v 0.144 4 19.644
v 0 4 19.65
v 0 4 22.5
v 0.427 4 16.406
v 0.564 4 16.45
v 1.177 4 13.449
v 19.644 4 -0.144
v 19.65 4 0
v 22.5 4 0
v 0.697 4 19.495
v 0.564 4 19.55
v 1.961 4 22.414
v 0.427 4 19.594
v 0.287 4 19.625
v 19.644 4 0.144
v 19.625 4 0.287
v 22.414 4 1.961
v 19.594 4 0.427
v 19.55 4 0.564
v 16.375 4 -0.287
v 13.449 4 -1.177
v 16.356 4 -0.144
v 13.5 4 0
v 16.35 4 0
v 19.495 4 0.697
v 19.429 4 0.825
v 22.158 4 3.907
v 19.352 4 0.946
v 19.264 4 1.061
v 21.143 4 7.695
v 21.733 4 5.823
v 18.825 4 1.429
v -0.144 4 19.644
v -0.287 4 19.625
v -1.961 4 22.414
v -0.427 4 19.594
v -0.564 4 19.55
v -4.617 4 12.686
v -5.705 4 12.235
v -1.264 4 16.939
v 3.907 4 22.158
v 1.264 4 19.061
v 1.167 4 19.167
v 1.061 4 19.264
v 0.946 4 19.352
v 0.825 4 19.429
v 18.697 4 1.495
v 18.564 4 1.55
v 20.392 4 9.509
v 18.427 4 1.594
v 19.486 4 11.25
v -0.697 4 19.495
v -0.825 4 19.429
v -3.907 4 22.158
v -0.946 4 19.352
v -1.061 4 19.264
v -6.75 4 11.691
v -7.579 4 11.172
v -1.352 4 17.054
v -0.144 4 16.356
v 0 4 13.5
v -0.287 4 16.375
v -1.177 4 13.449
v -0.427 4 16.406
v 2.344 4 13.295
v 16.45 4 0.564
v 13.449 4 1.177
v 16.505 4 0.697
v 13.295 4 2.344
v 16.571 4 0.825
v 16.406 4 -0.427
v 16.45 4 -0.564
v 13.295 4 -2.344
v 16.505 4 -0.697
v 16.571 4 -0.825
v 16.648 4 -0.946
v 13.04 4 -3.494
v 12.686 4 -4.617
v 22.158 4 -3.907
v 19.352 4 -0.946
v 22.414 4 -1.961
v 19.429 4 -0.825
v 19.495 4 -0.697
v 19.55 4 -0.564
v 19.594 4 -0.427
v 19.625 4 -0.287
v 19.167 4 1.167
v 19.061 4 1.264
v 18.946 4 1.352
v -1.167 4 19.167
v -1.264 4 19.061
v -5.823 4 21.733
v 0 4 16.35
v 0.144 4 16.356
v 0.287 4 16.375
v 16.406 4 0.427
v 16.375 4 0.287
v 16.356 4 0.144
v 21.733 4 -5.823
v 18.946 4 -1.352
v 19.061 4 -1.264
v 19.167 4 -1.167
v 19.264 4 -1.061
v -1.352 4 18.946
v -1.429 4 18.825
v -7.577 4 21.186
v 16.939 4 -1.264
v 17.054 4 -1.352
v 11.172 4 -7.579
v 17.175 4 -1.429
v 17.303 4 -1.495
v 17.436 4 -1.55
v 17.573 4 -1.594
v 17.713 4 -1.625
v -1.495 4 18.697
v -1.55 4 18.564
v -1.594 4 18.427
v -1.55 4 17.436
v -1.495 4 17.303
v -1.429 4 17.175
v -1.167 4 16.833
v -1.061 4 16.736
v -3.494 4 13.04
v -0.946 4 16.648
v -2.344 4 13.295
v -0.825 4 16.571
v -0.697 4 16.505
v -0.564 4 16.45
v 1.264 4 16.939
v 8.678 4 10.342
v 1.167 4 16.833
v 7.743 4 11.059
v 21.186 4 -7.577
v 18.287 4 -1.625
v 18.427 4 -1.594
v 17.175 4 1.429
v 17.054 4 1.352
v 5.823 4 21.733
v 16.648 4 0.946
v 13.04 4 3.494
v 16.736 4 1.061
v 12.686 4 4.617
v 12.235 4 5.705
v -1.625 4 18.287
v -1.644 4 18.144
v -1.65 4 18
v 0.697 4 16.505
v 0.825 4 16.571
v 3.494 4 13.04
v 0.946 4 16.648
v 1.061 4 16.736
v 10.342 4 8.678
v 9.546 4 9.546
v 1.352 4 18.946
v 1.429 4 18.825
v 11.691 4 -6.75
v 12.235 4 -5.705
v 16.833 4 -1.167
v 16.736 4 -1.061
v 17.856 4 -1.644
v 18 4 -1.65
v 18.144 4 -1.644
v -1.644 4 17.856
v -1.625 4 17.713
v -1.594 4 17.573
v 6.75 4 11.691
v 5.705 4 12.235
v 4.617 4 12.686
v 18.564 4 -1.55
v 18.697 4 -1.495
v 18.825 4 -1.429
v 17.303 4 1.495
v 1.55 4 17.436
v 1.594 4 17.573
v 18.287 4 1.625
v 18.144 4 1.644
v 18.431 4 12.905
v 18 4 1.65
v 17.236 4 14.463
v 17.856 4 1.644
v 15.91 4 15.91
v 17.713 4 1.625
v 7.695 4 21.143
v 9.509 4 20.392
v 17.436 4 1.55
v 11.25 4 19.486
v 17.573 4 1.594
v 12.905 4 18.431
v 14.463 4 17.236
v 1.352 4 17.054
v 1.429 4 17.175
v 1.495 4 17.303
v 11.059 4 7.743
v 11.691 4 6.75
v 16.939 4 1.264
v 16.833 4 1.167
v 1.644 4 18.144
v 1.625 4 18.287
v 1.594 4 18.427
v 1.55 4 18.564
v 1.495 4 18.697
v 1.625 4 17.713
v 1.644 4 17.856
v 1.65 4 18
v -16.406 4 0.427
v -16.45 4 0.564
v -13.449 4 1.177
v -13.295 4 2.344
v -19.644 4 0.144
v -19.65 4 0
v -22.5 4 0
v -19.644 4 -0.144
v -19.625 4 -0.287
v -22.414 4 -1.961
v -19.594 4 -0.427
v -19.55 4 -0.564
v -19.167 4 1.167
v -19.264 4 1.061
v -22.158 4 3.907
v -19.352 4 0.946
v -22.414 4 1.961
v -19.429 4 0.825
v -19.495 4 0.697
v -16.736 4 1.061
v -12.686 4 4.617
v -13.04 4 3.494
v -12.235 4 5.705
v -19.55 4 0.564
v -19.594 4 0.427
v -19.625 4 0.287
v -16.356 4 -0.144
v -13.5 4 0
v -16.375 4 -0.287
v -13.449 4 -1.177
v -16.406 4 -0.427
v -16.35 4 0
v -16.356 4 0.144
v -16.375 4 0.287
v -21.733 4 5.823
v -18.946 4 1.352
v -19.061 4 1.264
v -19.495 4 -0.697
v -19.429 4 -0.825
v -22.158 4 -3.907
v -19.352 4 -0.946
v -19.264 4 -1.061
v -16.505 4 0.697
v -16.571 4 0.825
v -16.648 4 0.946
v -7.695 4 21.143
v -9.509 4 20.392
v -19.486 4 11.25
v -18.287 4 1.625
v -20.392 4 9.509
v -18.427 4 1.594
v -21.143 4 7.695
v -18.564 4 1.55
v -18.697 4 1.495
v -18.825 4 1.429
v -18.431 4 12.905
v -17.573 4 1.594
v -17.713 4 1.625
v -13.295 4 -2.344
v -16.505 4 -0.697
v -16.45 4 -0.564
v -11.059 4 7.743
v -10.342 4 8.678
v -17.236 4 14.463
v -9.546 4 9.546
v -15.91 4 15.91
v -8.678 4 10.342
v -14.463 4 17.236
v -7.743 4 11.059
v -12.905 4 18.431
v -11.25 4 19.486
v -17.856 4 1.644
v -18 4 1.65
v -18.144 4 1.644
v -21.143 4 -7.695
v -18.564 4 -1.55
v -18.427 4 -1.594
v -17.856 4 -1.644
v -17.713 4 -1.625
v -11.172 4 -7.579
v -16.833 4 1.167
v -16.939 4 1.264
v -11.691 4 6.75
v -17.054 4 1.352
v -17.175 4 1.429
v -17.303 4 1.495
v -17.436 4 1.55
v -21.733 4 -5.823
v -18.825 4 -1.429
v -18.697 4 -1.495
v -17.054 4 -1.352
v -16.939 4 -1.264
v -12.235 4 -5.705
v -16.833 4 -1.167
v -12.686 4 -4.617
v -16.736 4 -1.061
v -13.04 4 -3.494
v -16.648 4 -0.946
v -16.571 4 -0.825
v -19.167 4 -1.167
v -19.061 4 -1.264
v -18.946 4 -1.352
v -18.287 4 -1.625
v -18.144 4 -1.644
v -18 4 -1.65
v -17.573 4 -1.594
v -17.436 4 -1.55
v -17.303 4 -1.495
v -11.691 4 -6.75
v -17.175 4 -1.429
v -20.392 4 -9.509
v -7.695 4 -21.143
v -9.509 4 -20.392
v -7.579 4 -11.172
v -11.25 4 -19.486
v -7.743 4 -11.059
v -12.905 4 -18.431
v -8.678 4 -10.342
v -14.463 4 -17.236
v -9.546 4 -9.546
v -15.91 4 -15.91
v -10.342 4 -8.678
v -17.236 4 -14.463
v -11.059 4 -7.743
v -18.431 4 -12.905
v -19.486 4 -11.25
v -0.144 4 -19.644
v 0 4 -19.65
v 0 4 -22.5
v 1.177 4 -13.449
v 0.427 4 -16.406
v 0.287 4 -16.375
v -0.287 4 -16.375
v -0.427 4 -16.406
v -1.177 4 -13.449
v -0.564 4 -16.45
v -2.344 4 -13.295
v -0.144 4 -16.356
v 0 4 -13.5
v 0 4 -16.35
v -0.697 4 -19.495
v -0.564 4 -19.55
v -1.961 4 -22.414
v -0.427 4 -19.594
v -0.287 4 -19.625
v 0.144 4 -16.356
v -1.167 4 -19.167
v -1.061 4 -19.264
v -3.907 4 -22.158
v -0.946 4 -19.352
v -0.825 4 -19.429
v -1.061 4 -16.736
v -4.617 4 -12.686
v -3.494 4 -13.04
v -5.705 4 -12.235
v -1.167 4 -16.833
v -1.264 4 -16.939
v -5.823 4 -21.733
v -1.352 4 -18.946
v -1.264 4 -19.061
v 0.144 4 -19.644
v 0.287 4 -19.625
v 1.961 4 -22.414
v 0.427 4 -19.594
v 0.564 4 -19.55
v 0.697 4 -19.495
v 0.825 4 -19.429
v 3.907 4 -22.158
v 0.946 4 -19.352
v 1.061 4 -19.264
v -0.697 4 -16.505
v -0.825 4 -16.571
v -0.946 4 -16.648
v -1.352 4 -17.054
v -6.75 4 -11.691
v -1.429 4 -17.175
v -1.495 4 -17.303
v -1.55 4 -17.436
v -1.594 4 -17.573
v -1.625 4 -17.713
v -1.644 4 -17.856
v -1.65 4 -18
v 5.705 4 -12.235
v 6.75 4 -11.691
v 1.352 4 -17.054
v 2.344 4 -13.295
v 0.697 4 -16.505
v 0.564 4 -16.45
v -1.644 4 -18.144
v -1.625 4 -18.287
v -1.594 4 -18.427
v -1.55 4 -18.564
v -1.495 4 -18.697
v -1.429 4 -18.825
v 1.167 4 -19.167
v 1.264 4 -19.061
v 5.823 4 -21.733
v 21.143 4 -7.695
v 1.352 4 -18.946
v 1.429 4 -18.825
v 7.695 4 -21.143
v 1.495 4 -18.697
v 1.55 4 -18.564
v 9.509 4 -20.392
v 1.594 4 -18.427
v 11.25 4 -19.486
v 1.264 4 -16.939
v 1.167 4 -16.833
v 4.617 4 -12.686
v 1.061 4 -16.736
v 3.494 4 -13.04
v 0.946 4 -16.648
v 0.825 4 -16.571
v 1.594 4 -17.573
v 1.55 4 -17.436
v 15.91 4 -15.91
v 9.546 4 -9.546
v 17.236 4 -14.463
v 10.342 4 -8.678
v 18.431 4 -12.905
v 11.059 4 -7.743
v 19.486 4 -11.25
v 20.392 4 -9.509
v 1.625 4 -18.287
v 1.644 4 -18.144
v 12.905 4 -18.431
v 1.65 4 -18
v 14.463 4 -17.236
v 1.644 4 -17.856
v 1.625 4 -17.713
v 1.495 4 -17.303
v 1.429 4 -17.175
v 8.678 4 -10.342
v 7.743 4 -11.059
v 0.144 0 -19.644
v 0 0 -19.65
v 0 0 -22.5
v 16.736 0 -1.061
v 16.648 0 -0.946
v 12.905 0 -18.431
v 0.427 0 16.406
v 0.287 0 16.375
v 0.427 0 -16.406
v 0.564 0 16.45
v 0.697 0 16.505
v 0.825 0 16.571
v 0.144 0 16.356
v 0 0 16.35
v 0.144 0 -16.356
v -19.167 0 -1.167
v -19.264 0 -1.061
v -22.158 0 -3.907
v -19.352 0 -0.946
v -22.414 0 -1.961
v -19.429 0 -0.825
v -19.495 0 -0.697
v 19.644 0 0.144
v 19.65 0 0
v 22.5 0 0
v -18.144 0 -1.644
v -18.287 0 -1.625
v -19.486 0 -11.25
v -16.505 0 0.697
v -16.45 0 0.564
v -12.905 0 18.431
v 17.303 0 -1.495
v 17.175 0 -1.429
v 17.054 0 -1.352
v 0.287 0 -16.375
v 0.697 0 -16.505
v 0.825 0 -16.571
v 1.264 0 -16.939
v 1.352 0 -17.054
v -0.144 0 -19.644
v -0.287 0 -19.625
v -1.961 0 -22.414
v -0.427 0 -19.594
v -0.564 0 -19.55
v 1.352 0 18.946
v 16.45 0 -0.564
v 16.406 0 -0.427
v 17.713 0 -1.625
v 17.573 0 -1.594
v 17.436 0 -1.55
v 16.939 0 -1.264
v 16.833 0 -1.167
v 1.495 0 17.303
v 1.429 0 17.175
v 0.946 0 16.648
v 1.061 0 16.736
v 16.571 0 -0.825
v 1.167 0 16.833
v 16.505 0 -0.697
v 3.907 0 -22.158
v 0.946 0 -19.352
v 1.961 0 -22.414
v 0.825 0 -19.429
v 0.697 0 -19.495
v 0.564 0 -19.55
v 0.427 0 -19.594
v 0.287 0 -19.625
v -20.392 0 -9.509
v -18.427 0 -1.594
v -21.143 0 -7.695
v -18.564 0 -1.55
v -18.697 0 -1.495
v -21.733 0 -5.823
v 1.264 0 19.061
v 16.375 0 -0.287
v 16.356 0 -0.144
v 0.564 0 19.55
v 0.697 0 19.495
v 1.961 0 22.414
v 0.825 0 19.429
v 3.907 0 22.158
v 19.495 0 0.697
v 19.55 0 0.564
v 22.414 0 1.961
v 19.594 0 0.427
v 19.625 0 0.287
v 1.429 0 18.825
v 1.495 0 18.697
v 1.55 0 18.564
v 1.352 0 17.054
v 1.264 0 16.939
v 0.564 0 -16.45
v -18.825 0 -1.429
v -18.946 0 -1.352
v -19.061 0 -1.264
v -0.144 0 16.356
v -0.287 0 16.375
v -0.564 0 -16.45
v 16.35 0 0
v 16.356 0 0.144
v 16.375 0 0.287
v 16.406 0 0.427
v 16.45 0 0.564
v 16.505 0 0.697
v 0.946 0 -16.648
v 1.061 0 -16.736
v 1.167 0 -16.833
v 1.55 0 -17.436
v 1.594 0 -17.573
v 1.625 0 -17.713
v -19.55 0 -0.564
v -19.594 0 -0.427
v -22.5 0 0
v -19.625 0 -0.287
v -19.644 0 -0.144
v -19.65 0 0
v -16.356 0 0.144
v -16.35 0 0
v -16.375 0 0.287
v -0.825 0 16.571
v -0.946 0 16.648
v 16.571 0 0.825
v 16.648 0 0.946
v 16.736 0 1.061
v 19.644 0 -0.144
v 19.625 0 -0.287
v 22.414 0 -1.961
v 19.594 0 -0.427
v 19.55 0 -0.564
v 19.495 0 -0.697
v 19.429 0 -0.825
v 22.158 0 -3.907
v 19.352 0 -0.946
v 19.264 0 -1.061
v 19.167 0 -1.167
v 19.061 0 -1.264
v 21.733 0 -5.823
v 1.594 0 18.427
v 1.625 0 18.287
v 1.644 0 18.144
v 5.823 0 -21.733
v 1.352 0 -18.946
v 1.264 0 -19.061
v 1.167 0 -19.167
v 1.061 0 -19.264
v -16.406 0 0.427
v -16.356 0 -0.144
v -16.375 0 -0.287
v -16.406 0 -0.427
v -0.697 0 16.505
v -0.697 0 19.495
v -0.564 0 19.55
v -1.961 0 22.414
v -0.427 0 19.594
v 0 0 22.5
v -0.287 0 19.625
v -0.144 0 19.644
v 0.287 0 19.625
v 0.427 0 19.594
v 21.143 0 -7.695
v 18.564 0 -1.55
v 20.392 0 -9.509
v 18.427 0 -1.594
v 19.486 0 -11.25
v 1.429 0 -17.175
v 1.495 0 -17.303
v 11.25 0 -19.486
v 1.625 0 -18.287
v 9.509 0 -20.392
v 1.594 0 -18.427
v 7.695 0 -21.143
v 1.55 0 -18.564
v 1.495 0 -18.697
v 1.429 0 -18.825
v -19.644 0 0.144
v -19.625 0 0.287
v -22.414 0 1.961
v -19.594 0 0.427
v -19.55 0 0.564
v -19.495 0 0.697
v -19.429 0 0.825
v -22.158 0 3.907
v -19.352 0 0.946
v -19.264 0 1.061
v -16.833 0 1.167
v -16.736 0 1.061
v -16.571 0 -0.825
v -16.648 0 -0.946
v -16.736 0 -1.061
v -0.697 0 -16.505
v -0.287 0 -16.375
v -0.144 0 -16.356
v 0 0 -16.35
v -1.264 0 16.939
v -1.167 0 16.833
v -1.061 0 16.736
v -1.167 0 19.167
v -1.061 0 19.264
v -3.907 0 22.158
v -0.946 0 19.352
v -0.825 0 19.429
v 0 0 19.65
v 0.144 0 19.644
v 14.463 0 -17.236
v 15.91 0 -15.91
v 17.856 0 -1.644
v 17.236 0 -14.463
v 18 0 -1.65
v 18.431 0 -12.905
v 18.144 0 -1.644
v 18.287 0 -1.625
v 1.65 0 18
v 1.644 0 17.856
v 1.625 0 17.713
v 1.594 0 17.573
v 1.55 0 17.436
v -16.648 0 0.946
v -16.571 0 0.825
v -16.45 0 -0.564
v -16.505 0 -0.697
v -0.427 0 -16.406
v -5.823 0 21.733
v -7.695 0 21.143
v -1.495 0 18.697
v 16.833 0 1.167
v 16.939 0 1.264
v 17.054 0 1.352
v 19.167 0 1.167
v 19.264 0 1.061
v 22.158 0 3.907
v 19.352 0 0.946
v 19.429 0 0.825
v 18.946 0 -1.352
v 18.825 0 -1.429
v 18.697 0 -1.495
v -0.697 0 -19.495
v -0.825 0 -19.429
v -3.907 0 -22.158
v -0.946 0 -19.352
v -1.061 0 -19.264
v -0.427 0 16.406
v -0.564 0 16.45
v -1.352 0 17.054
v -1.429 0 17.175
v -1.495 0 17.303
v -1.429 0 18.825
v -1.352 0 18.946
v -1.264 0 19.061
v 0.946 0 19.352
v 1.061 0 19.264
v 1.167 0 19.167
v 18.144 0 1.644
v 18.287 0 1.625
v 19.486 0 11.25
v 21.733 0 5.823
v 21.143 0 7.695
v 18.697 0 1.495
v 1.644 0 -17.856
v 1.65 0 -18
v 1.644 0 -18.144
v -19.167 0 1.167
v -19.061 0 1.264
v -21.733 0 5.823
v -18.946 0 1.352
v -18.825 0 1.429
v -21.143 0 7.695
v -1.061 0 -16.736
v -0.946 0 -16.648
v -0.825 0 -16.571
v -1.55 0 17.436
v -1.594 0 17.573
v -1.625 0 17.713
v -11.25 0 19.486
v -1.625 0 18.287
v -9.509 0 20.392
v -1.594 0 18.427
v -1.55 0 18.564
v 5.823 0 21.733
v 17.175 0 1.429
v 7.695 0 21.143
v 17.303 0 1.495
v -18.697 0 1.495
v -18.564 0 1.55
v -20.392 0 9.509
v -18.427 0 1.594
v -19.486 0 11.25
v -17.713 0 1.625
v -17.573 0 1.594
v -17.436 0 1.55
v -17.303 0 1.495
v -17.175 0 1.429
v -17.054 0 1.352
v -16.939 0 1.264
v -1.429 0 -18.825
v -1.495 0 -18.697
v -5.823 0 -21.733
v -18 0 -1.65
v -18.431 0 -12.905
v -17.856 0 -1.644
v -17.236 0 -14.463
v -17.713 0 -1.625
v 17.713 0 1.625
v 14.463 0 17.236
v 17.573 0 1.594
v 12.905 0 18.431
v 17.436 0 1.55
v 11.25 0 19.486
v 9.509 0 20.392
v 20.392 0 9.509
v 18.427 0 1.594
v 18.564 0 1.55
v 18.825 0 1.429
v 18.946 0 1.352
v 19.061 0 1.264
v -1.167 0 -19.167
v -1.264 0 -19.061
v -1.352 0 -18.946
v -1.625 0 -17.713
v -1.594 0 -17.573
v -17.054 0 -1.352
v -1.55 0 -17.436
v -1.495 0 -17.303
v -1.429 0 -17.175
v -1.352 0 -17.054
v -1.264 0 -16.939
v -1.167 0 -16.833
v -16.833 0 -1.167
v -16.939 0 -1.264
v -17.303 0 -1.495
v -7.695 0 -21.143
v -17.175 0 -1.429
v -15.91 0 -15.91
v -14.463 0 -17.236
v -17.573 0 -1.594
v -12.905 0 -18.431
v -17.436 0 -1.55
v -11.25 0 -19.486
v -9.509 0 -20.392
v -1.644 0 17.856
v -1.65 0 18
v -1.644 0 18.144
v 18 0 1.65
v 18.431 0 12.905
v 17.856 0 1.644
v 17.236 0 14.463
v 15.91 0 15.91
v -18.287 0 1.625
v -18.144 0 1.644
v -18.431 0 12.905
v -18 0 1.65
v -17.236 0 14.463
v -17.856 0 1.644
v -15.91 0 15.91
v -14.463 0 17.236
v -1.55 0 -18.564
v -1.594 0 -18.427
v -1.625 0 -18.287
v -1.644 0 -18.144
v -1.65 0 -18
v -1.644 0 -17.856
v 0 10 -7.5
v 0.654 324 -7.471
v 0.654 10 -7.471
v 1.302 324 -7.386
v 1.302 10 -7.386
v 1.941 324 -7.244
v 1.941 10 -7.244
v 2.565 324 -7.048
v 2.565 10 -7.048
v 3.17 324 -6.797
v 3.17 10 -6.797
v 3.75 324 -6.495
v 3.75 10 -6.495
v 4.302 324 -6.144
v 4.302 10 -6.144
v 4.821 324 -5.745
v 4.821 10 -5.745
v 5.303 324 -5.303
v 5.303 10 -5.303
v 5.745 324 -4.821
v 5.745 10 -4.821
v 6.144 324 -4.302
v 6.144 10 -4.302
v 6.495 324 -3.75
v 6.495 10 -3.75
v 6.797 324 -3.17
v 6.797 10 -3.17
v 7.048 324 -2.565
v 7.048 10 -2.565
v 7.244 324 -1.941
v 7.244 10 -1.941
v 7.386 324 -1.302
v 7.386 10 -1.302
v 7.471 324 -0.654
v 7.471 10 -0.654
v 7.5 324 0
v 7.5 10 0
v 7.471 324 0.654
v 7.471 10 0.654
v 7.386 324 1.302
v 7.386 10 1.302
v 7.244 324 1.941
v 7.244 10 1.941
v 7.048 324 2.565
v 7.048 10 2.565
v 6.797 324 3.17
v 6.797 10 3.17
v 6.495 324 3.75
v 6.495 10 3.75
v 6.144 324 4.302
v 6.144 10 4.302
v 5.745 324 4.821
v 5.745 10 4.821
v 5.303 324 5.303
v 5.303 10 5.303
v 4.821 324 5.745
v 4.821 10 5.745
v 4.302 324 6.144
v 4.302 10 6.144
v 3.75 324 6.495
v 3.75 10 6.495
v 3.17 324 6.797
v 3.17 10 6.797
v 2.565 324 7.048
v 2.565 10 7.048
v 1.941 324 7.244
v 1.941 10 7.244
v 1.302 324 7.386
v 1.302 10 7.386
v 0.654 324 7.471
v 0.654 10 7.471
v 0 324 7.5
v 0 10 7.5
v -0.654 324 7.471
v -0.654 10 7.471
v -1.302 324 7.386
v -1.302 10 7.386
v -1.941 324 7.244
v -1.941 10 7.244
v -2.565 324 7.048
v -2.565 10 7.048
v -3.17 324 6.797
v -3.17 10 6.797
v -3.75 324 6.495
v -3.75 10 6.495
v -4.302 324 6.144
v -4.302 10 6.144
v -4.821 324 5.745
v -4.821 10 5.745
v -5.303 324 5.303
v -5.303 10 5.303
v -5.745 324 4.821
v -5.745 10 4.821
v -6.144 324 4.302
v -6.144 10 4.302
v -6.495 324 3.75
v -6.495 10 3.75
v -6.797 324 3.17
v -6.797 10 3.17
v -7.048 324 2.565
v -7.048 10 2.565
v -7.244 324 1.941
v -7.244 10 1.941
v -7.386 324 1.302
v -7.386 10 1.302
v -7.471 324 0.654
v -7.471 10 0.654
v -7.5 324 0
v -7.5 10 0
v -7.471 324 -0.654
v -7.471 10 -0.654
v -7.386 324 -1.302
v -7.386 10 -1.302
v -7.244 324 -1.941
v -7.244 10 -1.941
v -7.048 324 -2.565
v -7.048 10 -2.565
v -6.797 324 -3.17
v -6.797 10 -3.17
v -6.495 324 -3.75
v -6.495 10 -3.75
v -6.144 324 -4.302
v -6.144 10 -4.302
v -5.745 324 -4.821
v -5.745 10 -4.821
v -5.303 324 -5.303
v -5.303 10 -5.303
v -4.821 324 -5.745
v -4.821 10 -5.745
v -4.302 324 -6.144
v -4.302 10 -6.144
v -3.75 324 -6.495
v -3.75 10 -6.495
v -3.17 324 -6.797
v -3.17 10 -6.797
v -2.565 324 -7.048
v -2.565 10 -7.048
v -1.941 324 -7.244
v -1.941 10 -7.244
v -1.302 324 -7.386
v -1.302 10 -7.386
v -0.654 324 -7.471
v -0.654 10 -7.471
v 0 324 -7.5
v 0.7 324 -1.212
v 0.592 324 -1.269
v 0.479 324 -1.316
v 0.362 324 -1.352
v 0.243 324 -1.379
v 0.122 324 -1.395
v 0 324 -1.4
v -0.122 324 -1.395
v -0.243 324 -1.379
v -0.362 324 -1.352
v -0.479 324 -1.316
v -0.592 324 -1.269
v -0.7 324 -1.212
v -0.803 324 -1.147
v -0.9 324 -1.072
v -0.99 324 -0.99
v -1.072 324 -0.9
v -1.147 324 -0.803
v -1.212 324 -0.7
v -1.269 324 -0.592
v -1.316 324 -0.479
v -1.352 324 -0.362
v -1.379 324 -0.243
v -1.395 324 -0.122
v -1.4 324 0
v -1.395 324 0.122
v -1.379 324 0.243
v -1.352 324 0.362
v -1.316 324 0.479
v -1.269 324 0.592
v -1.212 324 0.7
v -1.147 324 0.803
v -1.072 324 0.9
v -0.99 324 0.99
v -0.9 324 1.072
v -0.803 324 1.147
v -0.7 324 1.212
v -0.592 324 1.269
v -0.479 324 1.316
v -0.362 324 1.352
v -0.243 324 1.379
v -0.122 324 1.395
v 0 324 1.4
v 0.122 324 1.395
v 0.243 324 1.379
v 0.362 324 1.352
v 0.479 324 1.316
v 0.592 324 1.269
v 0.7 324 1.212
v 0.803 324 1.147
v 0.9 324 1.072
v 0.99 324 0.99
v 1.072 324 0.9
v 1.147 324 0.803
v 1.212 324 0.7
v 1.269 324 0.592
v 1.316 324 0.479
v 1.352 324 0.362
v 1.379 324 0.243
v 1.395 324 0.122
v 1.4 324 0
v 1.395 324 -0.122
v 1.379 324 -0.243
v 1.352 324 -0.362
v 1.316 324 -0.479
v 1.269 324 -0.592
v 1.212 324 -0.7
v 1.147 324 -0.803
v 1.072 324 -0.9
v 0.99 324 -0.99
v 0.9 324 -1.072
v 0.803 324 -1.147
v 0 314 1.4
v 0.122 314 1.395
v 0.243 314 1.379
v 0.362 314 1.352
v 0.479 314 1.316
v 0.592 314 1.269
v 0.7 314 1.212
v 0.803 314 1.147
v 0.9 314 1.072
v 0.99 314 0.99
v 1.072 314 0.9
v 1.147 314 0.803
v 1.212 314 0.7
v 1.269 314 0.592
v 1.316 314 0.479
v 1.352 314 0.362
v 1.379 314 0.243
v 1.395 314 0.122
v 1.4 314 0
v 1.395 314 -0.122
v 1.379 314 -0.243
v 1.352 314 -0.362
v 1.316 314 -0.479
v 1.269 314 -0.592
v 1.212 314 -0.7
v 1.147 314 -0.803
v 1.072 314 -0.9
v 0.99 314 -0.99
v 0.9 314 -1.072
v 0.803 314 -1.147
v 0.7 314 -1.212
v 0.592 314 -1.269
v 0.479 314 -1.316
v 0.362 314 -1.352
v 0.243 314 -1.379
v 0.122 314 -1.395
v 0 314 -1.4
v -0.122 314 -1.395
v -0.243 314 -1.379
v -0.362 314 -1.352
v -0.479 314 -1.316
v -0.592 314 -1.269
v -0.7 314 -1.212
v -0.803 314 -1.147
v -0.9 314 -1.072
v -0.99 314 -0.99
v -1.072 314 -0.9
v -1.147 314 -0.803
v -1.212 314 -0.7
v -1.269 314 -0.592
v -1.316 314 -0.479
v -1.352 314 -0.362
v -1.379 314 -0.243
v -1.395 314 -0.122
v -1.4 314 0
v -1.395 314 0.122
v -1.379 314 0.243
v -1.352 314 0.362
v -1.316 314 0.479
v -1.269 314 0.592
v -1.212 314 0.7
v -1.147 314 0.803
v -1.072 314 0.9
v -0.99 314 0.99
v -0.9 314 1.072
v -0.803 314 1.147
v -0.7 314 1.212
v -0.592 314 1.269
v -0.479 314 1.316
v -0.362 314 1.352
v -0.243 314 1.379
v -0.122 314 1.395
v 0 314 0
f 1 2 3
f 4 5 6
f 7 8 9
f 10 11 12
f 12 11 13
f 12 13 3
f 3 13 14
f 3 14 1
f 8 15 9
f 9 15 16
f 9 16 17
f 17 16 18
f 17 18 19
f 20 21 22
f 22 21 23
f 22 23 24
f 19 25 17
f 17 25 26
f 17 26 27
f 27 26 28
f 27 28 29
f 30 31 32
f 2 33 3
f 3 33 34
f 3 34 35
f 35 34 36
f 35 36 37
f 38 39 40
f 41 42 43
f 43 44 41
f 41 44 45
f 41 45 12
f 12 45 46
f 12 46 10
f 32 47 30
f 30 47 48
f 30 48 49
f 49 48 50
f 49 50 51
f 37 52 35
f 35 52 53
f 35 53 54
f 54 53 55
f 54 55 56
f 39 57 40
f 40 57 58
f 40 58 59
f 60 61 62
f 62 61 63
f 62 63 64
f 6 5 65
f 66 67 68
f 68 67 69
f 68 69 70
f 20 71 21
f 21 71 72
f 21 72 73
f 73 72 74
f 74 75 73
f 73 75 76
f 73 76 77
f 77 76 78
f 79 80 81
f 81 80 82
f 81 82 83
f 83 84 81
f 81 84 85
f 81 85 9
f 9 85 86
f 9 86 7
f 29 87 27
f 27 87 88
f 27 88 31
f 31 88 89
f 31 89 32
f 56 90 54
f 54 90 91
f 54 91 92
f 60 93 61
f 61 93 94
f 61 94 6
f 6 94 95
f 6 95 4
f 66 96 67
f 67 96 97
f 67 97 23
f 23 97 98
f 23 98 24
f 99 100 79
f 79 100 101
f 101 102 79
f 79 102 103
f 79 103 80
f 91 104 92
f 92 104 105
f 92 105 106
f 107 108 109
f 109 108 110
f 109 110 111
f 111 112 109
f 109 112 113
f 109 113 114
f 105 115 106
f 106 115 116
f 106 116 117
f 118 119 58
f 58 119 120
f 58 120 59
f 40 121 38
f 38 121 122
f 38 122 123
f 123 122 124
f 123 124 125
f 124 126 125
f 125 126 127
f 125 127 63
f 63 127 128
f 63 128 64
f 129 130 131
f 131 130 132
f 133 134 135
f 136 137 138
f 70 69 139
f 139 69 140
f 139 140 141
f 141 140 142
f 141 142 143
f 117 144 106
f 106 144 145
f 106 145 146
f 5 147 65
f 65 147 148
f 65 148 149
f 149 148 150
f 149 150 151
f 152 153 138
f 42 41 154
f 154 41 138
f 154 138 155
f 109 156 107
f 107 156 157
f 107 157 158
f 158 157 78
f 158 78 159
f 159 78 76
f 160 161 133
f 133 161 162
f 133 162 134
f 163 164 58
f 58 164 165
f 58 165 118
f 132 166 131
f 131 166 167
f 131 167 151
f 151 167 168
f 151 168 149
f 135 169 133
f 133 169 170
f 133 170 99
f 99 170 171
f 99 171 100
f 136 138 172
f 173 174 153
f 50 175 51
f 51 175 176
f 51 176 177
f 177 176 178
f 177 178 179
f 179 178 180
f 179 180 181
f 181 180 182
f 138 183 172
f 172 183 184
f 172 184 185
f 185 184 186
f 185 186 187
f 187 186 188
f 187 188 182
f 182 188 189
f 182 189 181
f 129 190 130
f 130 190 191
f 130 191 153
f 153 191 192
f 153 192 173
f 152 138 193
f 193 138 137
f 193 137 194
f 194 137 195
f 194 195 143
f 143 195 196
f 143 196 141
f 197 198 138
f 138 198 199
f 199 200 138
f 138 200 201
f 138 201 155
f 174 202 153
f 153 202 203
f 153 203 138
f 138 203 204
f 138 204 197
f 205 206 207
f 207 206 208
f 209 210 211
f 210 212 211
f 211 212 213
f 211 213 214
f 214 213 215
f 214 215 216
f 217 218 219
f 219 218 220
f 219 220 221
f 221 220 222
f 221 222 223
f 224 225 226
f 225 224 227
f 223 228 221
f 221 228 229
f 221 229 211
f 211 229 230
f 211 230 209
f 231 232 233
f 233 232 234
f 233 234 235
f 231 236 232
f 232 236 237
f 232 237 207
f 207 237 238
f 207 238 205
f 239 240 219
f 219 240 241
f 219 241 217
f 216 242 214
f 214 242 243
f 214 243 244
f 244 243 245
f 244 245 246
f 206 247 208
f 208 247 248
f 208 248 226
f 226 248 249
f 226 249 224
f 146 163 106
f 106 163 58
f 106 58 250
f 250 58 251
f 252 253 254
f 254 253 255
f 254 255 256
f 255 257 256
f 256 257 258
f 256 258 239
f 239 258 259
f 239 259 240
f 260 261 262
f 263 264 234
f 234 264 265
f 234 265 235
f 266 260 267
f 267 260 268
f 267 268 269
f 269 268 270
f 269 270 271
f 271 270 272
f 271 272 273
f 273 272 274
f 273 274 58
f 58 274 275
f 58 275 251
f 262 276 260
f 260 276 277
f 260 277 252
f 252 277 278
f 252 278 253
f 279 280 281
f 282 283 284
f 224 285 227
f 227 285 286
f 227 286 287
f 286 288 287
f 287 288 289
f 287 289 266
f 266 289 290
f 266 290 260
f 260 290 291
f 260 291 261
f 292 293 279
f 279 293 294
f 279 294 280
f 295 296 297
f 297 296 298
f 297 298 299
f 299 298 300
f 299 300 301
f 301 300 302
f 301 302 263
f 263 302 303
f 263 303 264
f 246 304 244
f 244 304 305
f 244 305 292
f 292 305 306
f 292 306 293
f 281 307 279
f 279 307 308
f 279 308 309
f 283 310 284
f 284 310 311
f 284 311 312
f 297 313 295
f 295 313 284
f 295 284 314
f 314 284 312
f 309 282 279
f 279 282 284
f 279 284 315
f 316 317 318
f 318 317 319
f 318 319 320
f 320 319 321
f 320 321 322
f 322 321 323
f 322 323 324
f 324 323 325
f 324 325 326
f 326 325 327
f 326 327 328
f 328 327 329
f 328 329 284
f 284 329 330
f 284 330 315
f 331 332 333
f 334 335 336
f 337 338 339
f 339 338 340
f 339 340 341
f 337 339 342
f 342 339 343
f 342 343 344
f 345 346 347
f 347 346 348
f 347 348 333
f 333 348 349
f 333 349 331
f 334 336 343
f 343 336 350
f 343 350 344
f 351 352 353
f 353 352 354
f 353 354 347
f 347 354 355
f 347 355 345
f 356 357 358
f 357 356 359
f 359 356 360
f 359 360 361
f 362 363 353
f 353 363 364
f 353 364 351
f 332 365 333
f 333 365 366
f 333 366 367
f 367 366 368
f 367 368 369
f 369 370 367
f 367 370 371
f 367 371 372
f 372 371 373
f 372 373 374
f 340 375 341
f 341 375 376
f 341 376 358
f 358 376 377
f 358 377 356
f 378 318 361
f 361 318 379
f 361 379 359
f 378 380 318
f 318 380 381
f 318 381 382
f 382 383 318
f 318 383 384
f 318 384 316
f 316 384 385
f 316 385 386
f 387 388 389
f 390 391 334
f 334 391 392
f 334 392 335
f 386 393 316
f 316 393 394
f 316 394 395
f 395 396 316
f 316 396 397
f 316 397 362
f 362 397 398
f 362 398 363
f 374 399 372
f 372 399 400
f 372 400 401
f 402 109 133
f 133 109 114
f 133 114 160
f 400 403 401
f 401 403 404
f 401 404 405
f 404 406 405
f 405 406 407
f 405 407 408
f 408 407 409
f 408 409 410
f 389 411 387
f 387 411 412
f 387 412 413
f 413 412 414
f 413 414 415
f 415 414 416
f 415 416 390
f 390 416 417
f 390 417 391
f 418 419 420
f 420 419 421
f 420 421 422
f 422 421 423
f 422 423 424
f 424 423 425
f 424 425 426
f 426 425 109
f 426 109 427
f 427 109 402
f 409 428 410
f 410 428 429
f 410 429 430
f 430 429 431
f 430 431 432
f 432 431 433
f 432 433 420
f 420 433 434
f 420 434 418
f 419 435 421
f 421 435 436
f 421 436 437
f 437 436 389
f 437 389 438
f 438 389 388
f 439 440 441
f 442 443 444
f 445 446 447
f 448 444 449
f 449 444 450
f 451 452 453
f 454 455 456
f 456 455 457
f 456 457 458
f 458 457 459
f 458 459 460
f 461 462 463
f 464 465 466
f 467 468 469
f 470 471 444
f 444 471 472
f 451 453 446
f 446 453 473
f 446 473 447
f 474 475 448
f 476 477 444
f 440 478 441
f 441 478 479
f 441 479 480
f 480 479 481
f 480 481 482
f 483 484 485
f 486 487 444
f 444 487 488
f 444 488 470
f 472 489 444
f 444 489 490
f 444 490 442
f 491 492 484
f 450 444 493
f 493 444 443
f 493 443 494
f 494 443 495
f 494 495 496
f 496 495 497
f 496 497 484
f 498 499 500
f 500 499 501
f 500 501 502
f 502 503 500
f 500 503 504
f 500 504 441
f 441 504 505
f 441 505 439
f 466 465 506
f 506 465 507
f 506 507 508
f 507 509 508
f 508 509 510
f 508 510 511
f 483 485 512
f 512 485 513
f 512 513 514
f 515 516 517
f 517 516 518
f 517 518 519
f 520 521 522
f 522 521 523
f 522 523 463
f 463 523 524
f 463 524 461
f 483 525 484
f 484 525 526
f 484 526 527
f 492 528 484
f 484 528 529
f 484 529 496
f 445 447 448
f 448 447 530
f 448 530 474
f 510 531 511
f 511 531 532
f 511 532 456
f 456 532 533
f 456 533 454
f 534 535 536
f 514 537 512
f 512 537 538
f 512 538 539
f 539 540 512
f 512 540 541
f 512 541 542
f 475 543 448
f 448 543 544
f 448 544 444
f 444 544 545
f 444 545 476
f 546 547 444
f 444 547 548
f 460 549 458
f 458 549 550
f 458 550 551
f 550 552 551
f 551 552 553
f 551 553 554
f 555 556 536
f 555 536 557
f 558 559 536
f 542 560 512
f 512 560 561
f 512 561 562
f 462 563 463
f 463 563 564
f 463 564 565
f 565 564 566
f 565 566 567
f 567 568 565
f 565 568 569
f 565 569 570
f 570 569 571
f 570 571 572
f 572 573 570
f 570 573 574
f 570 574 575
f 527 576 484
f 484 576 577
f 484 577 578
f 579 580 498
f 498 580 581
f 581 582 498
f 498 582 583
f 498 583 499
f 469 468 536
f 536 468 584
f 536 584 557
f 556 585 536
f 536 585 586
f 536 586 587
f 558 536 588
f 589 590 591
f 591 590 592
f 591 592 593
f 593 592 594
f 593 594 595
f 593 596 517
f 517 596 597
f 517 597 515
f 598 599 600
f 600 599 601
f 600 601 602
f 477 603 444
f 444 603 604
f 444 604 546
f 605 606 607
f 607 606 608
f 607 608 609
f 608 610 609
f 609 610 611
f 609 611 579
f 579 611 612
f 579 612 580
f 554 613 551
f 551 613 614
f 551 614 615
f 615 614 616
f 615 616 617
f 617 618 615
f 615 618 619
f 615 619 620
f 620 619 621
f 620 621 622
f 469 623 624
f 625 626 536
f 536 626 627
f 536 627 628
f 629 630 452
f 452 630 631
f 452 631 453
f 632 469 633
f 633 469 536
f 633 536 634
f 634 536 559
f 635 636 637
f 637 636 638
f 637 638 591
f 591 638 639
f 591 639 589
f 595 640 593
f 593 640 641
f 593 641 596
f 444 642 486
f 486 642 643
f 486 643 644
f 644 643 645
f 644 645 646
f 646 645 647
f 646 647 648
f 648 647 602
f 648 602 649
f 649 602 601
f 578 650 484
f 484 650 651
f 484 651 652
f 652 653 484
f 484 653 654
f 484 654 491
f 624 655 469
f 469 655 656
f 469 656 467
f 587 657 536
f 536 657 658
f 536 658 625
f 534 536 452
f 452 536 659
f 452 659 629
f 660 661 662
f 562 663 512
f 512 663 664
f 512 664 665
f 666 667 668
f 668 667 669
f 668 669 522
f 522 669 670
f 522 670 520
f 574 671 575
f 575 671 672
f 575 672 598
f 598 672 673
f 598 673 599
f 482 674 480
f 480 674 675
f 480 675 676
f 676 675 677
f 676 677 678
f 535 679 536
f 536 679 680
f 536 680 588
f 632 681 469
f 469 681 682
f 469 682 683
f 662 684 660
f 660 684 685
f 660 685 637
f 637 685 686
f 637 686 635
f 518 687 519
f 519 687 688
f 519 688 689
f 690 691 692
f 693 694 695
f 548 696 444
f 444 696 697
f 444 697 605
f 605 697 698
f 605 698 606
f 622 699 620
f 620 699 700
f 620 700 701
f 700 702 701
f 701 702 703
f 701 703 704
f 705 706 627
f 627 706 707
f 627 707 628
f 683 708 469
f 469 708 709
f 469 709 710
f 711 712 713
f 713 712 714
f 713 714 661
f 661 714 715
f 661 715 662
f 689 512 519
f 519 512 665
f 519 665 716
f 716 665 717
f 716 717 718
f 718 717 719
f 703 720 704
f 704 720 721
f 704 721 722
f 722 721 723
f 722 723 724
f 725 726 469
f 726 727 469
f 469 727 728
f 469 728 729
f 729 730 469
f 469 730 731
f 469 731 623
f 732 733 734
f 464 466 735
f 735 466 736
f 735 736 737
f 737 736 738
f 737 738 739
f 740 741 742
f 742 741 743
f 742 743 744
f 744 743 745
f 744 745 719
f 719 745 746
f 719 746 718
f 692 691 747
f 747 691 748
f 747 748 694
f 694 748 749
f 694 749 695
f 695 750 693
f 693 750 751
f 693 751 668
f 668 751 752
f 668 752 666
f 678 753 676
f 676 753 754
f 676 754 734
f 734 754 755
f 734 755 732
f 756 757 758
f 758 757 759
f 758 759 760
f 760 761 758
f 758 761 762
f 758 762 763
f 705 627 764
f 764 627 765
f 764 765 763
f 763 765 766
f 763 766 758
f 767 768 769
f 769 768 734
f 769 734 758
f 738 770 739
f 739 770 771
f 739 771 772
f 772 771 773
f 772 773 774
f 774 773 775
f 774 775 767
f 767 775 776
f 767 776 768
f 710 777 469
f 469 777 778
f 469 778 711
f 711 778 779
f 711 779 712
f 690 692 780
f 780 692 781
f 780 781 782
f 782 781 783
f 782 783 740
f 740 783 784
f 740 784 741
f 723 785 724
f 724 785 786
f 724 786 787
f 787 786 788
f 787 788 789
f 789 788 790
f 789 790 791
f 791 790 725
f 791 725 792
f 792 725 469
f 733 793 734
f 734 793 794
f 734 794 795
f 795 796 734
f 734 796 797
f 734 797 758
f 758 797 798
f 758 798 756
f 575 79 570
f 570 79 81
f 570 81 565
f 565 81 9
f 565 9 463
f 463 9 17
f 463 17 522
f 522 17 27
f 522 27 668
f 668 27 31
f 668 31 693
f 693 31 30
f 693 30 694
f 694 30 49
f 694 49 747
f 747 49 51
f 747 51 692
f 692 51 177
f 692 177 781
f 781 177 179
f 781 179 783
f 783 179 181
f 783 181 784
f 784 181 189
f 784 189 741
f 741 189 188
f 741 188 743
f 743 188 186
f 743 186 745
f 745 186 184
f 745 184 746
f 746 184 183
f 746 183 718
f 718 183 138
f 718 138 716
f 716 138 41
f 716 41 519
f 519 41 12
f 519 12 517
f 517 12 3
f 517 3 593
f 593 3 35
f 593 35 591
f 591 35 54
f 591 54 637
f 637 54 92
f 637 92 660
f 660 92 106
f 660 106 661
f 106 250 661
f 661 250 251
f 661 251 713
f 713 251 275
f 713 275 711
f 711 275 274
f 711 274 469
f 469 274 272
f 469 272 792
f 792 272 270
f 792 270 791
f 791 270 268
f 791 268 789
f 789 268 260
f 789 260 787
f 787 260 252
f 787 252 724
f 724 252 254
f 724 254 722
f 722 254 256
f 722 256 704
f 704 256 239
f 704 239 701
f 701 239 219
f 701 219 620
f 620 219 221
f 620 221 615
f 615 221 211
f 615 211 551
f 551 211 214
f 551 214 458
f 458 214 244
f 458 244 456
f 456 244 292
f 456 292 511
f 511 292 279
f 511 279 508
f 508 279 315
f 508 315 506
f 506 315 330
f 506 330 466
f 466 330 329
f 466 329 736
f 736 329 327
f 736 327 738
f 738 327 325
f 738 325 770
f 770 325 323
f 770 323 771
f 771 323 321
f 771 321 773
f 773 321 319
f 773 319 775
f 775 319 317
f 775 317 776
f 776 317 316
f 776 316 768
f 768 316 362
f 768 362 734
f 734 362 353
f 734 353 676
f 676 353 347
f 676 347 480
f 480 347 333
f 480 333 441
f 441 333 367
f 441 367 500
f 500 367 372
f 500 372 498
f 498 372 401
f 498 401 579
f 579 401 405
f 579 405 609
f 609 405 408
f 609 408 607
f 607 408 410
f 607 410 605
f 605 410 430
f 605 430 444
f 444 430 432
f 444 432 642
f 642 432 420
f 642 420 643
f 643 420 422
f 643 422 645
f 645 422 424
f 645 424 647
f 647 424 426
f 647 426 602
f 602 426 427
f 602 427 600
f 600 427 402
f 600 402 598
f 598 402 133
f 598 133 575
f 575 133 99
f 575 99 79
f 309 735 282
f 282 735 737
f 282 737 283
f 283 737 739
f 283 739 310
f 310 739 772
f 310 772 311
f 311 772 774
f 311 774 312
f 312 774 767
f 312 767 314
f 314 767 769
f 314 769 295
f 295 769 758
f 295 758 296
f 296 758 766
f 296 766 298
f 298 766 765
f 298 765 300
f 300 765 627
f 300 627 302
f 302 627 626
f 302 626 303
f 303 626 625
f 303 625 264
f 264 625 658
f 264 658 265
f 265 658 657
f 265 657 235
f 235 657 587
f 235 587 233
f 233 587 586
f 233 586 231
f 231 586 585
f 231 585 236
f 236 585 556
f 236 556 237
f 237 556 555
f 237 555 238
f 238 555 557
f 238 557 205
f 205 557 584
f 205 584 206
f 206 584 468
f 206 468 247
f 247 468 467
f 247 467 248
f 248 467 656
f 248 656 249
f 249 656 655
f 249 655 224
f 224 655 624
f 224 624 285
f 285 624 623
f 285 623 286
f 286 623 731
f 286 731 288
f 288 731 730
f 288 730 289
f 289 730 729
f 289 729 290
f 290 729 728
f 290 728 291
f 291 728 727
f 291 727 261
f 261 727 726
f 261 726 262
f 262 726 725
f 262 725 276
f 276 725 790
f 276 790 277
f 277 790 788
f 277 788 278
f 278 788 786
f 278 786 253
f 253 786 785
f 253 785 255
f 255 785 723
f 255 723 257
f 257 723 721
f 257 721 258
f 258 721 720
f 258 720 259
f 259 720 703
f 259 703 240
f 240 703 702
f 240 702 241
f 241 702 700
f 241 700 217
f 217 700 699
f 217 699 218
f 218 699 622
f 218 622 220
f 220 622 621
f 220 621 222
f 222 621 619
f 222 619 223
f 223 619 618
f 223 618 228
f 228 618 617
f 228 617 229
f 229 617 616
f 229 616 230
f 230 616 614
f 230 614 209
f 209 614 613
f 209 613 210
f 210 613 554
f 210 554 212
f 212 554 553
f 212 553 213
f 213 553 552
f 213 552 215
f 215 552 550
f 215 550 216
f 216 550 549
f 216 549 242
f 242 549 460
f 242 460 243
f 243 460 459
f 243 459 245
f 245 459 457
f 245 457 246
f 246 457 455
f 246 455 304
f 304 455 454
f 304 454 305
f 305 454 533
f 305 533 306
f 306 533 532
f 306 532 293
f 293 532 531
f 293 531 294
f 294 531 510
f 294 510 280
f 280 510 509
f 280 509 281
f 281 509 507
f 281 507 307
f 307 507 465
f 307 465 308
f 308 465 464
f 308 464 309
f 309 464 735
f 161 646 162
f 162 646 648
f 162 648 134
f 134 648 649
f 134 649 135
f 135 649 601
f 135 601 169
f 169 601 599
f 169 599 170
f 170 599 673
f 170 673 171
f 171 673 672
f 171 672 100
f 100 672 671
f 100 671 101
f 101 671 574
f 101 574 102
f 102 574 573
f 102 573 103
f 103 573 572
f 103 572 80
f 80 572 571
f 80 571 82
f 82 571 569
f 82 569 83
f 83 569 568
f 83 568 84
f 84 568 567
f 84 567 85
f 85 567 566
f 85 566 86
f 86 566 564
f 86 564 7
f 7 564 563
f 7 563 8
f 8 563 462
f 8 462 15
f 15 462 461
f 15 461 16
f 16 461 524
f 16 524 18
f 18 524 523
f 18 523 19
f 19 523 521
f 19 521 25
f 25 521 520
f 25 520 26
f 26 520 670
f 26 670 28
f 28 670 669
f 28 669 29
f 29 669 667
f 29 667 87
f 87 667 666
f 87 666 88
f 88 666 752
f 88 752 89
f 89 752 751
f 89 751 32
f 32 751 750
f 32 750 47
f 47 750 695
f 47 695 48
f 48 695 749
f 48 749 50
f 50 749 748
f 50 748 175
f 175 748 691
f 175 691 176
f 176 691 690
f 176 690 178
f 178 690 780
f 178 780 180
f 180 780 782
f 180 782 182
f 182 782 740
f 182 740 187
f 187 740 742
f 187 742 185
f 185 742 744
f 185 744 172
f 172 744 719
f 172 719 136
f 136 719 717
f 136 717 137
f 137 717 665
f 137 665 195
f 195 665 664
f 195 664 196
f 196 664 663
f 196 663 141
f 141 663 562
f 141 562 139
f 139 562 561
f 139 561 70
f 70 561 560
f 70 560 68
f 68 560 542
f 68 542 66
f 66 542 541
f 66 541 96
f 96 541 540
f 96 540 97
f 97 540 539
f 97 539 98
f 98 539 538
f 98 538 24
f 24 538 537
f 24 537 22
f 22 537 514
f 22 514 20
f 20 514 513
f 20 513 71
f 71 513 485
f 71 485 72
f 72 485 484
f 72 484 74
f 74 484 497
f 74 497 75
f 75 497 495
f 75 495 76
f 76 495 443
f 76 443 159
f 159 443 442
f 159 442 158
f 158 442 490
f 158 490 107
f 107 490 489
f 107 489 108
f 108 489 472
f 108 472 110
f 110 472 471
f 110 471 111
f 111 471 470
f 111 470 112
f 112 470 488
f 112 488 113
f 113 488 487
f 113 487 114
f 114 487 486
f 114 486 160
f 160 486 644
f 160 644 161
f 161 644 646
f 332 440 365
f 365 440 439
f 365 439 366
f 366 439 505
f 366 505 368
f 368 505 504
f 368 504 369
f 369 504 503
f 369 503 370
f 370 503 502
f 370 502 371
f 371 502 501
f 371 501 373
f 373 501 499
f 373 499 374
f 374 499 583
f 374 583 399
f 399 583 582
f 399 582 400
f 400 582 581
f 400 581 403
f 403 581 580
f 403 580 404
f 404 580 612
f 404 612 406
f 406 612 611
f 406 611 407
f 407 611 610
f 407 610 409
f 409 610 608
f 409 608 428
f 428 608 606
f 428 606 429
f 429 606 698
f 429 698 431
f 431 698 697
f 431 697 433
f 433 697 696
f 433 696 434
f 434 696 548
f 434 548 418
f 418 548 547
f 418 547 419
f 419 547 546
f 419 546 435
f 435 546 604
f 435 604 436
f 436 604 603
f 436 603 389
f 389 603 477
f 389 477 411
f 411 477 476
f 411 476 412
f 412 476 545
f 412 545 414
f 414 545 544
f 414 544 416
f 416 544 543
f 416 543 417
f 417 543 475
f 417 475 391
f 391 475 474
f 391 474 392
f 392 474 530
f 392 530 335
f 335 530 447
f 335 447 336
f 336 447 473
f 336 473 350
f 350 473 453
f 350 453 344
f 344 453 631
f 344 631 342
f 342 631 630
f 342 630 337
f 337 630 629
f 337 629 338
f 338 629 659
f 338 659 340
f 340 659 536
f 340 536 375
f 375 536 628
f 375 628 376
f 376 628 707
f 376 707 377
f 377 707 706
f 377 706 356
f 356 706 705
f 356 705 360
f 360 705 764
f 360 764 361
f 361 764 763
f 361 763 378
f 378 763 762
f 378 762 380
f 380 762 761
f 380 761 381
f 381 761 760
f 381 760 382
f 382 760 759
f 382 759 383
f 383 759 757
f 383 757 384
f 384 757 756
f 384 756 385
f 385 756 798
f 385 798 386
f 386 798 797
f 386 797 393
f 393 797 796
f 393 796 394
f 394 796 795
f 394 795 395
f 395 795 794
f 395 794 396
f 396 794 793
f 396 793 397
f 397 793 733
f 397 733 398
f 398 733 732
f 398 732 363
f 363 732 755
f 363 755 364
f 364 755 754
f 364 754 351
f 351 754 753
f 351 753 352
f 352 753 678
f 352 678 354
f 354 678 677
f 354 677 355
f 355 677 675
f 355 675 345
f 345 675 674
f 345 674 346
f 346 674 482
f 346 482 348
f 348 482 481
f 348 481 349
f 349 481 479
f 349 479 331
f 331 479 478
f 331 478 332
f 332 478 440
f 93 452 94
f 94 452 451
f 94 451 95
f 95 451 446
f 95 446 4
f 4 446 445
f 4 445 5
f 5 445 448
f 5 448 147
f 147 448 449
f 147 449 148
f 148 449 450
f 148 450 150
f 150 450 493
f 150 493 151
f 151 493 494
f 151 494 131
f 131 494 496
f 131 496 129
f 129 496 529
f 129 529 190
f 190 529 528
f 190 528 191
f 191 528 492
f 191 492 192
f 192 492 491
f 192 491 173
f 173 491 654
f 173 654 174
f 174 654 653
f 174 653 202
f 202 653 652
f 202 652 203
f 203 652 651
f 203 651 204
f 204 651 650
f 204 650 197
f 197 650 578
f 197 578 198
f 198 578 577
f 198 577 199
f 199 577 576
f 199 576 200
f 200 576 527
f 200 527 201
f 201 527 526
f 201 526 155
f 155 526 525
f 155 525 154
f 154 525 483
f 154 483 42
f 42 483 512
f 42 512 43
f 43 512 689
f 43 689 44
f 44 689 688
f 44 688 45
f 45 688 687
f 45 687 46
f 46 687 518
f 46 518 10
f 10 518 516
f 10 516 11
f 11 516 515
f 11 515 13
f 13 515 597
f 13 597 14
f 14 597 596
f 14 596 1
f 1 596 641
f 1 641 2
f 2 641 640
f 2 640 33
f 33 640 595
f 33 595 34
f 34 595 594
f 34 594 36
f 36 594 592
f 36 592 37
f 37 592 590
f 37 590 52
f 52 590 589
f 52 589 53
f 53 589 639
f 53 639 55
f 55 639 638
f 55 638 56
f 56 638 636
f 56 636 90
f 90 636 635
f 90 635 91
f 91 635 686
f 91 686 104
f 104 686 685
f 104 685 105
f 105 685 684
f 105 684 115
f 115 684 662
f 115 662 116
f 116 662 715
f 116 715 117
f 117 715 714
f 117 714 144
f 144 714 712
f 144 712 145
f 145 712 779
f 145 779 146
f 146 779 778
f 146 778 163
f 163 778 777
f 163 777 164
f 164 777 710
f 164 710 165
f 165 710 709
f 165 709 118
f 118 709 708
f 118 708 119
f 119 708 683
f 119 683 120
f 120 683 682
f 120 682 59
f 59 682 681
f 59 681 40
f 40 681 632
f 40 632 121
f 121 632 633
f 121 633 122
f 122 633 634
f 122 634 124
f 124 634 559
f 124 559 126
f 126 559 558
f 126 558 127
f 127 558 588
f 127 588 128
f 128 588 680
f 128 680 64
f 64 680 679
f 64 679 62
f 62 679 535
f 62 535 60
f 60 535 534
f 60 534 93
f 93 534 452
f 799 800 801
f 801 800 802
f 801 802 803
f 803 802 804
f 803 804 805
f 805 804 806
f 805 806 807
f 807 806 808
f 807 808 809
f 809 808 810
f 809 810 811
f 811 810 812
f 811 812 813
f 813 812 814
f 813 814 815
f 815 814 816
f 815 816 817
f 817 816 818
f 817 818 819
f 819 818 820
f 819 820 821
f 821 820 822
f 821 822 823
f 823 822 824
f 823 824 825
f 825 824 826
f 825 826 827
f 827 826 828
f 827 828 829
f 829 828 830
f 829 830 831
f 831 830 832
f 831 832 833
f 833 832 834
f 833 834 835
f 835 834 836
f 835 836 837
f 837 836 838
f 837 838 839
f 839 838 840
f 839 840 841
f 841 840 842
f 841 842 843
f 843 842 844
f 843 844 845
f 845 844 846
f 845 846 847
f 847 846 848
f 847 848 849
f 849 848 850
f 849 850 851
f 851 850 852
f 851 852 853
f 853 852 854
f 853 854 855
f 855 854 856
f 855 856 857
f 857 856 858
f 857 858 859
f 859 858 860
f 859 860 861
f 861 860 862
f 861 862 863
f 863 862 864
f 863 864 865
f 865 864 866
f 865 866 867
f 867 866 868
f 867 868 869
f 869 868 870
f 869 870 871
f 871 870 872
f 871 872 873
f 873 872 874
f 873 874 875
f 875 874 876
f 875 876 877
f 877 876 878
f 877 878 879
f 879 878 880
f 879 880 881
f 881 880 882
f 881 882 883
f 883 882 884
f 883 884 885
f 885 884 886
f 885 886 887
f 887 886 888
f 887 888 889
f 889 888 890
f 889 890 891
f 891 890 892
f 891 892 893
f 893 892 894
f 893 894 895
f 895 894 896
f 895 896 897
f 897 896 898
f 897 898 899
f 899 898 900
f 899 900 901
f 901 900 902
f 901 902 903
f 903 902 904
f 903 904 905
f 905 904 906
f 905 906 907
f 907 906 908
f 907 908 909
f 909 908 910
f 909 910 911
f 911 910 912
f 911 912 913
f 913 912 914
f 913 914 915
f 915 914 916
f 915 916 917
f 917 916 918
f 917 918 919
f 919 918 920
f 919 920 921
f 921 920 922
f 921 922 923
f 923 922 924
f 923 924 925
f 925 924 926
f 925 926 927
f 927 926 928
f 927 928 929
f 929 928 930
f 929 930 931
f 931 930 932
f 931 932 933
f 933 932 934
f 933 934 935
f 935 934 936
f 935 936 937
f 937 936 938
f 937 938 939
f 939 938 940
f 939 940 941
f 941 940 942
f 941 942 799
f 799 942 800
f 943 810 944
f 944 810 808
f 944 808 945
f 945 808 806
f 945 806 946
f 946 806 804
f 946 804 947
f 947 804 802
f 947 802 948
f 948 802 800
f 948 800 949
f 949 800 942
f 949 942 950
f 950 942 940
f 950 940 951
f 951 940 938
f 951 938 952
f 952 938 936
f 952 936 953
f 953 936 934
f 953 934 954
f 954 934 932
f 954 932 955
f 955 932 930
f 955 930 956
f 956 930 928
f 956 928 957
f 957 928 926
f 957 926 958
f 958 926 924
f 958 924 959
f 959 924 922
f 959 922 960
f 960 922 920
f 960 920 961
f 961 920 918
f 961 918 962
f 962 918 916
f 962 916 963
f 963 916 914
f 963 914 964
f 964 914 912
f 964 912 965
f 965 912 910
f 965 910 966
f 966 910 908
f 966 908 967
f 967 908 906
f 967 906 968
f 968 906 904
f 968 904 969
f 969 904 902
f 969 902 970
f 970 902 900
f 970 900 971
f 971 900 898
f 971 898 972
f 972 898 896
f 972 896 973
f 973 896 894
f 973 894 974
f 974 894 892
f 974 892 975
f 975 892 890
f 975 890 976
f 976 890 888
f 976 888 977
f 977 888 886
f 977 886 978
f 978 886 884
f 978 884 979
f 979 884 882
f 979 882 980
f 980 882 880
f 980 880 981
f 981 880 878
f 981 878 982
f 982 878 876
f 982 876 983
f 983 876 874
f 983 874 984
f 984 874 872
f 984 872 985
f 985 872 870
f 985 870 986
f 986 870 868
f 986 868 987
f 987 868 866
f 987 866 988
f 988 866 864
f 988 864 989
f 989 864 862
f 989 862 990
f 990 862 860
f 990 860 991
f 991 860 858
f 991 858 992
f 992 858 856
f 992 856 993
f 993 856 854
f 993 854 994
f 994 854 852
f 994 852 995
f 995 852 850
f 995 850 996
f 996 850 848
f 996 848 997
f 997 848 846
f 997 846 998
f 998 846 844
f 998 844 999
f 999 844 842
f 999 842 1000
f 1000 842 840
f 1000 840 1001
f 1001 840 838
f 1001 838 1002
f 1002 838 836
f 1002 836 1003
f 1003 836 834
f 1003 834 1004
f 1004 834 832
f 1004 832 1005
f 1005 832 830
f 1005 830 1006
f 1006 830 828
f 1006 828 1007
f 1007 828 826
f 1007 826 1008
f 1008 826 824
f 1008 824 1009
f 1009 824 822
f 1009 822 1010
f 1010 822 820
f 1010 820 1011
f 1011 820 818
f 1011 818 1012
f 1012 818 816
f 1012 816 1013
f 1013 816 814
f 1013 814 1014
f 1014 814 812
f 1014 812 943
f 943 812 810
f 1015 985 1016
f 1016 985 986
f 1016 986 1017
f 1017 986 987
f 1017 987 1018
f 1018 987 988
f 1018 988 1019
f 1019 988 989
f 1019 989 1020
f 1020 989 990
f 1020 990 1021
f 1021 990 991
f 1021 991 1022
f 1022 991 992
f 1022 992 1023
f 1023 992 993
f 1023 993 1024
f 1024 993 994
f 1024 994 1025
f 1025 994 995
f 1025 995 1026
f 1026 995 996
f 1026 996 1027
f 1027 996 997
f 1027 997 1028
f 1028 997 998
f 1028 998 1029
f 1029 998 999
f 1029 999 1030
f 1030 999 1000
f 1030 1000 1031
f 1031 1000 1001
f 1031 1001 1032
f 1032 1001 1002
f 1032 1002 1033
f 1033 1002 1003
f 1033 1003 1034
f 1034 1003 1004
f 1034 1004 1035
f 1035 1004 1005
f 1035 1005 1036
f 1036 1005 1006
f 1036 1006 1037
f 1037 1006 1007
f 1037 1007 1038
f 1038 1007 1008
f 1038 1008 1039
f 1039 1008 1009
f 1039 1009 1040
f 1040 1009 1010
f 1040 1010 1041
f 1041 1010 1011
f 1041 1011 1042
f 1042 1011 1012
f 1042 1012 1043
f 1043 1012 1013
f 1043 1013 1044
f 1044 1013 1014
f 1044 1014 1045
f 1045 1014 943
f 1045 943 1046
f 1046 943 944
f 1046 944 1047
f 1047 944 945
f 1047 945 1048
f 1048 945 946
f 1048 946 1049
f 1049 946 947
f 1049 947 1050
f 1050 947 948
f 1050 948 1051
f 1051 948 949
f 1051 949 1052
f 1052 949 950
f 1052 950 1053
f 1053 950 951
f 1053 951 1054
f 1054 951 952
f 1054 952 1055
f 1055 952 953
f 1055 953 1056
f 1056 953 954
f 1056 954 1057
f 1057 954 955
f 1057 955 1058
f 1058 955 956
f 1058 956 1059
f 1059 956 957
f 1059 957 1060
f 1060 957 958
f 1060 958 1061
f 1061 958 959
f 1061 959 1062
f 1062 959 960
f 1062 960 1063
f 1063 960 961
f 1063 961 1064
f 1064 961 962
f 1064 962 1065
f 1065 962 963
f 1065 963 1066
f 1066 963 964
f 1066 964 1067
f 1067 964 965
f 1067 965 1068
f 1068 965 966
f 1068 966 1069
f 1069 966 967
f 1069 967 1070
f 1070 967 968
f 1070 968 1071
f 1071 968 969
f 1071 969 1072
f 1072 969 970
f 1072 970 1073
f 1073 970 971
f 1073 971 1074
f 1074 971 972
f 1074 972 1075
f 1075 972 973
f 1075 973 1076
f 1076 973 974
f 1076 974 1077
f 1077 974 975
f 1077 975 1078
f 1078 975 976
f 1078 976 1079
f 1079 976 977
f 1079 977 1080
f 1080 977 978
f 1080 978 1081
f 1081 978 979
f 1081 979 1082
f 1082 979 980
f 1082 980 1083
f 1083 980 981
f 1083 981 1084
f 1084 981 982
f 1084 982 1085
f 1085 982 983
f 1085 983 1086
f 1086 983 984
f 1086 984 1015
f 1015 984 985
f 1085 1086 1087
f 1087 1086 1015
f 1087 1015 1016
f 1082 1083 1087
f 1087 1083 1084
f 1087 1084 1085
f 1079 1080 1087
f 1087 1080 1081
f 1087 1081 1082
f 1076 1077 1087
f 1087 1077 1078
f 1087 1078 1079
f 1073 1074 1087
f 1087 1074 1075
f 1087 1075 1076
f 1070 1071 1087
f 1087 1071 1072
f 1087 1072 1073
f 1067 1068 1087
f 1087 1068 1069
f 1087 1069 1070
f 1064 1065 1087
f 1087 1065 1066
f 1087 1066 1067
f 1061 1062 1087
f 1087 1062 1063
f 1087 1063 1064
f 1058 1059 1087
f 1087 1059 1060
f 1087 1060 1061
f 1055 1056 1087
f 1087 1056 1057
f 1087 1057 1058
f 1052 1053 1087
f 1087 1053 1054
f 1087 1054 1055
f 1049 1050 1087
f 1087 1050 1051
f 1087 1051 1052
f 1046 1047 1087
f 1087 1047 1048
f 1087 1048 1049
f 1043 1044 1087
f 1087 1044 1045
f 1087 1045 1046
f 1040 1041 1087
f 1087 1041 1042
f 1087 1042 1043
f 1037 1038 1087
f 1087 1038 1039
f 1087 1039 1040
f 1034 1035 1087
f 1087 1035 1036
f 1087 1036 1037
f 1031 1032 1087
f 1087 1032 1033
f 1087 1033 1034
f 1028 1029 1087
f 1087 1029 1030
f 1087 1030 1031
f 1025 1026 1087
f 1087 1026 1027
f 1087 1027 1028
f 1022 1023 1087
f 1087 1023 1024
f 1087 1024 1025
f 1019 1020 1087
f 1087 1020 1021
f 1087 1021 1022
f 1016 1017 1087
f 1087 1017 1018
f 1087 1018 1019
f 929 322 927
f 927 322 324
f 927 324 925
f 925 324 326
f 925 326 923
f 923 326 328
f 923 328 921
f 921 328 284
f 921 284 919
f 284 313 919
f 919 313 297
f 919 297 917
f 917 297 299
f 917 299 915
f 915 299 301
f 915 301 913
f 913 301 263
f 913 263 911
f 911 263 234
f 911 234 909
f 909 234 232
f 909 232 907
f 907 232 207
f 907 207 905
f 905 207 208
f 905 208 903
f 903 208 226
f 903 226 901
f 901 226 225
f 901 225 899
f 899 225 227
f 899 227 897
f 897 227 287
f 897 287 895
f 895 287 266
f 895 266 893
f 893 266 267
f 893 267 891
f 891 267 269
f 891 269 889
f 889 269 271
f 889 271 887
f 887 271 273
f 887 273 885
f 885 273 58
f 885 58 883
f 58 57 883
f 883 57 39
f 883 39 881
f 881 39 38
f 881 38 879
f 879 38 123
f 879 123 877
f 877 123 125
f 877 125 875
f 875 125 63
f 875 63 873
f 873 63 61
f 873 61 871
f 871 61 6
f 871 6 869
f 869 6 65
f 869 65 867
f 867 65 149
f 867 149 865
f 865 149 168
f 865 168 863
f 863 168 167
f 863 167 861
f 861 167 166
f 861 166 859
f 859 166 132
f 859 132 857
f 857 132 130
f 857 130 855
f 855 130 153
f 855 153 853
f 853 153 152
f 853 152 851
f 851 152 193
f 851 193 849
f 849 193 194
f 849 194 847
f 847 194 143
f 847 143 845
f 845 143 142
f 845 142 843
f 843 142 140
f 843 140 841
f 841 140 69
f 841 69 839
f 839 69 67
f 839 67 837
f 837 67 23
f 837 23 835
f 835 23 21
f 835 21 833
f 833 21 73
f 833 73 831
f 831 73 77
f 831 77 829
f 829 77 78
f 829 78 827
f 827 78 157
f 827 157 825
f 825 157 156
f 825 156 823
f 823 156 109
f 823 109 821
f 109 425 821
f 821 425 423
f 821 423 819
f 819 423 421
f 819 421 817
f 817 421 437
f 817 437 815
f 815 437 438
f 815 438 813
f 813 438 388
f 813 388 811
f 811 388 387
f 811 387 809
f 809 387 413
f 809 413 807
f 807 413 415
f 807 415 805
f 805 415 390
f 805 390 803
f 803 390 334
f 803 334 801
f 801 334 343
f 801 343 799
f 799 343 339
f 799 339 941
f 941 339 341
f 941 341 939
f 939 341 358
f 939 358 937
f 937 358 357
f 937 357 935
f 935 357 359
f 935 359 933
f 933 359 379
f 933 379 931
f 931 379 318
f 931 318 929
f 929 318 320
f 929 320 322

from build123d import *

# Parameters (mm, degrees)
SKETCH_1_R          = 22.5
SKETCH_1_R_2        = 1.65
EXTRUDE_1_DEPTH     = 4
SKETCH_2_R          = 7.5
EXTRUDE_2_DEPTH     = 320
SKETCH_3_R          = 1.4
CUT_EXTRUDE_1_DEPTH = 10
CHAMFER_1_SIZE      = 6


with BuildPart() as part:
    # 草图1 → 凸台-拉伸1 (new body)
    with BuildSketch(Plane(origin=(0, 0, 0), x_dir=(1, 0, 0), z_dir=(0, 1, 0))):
        with Locations(Location((0, 0, 0), (0, 0, 270))):
            Circle(SKETCH_1_R)
        with Locations(Location((-18, 0, 0), (0, 0, 270))):
            Circle(SKETCH_1_R_2, mode=Mode.SUBTRACT)
        with Locations(Location((18, 0, 0), (0, 0, 270))):
            Circle(SKETCH_1_R_2, mode=Mode.SUBTRACT)
        with Locations(Location((0, 18, 0), (0, 0, 270))):
            Circle(SKETCH_1_R_2, mode=Mode.SUBTRACT)
        with Locations(Location((0, -18, 0), (0, 0, 270))):
            Circle(SKETCH_1_R_2, mode=Mode.SUBTRACT)
    extrude(amount=EXTRUDE_1_DEPTH)

    # 草图2 → 凸台-拉伸2 (add)
    with BuildSketch(Plane(origin=(0, 4, 0), x_dir=(1, 0, 0), z_dir=(0, 1, 0))):
        with Locations(Location((0, 0, 0), (0, 0, 270))):
            Circle(SKETCH_2_R)
    extrude(amount=EXTRUDE_2_DEPTH)

    # 草图3 → 切除-拉伸1 (cut)
    with BuildSketch(Plane(origin=(0, 324, 0), x_dir=(1, 0, 0), z_dir=(0, 1, 0))):
        with Locations(Location((0, 0, 0), (0, 0, 270))):
            Circle(SKETCH_3_R)
    extrude(amount=-CUT_EXTRUDE_1_DEPTH, mode=Mode.SUBTRACT)

    # 倒角1
    chamfer_1_edges = [part.edges().sort_by_distance(p)[0] for p in [
        (0, 4, -7.5),
    ]]
    chamfer(chamfer_1_edges, length=CHAMFER_1_SIZE)


solid = part.part
